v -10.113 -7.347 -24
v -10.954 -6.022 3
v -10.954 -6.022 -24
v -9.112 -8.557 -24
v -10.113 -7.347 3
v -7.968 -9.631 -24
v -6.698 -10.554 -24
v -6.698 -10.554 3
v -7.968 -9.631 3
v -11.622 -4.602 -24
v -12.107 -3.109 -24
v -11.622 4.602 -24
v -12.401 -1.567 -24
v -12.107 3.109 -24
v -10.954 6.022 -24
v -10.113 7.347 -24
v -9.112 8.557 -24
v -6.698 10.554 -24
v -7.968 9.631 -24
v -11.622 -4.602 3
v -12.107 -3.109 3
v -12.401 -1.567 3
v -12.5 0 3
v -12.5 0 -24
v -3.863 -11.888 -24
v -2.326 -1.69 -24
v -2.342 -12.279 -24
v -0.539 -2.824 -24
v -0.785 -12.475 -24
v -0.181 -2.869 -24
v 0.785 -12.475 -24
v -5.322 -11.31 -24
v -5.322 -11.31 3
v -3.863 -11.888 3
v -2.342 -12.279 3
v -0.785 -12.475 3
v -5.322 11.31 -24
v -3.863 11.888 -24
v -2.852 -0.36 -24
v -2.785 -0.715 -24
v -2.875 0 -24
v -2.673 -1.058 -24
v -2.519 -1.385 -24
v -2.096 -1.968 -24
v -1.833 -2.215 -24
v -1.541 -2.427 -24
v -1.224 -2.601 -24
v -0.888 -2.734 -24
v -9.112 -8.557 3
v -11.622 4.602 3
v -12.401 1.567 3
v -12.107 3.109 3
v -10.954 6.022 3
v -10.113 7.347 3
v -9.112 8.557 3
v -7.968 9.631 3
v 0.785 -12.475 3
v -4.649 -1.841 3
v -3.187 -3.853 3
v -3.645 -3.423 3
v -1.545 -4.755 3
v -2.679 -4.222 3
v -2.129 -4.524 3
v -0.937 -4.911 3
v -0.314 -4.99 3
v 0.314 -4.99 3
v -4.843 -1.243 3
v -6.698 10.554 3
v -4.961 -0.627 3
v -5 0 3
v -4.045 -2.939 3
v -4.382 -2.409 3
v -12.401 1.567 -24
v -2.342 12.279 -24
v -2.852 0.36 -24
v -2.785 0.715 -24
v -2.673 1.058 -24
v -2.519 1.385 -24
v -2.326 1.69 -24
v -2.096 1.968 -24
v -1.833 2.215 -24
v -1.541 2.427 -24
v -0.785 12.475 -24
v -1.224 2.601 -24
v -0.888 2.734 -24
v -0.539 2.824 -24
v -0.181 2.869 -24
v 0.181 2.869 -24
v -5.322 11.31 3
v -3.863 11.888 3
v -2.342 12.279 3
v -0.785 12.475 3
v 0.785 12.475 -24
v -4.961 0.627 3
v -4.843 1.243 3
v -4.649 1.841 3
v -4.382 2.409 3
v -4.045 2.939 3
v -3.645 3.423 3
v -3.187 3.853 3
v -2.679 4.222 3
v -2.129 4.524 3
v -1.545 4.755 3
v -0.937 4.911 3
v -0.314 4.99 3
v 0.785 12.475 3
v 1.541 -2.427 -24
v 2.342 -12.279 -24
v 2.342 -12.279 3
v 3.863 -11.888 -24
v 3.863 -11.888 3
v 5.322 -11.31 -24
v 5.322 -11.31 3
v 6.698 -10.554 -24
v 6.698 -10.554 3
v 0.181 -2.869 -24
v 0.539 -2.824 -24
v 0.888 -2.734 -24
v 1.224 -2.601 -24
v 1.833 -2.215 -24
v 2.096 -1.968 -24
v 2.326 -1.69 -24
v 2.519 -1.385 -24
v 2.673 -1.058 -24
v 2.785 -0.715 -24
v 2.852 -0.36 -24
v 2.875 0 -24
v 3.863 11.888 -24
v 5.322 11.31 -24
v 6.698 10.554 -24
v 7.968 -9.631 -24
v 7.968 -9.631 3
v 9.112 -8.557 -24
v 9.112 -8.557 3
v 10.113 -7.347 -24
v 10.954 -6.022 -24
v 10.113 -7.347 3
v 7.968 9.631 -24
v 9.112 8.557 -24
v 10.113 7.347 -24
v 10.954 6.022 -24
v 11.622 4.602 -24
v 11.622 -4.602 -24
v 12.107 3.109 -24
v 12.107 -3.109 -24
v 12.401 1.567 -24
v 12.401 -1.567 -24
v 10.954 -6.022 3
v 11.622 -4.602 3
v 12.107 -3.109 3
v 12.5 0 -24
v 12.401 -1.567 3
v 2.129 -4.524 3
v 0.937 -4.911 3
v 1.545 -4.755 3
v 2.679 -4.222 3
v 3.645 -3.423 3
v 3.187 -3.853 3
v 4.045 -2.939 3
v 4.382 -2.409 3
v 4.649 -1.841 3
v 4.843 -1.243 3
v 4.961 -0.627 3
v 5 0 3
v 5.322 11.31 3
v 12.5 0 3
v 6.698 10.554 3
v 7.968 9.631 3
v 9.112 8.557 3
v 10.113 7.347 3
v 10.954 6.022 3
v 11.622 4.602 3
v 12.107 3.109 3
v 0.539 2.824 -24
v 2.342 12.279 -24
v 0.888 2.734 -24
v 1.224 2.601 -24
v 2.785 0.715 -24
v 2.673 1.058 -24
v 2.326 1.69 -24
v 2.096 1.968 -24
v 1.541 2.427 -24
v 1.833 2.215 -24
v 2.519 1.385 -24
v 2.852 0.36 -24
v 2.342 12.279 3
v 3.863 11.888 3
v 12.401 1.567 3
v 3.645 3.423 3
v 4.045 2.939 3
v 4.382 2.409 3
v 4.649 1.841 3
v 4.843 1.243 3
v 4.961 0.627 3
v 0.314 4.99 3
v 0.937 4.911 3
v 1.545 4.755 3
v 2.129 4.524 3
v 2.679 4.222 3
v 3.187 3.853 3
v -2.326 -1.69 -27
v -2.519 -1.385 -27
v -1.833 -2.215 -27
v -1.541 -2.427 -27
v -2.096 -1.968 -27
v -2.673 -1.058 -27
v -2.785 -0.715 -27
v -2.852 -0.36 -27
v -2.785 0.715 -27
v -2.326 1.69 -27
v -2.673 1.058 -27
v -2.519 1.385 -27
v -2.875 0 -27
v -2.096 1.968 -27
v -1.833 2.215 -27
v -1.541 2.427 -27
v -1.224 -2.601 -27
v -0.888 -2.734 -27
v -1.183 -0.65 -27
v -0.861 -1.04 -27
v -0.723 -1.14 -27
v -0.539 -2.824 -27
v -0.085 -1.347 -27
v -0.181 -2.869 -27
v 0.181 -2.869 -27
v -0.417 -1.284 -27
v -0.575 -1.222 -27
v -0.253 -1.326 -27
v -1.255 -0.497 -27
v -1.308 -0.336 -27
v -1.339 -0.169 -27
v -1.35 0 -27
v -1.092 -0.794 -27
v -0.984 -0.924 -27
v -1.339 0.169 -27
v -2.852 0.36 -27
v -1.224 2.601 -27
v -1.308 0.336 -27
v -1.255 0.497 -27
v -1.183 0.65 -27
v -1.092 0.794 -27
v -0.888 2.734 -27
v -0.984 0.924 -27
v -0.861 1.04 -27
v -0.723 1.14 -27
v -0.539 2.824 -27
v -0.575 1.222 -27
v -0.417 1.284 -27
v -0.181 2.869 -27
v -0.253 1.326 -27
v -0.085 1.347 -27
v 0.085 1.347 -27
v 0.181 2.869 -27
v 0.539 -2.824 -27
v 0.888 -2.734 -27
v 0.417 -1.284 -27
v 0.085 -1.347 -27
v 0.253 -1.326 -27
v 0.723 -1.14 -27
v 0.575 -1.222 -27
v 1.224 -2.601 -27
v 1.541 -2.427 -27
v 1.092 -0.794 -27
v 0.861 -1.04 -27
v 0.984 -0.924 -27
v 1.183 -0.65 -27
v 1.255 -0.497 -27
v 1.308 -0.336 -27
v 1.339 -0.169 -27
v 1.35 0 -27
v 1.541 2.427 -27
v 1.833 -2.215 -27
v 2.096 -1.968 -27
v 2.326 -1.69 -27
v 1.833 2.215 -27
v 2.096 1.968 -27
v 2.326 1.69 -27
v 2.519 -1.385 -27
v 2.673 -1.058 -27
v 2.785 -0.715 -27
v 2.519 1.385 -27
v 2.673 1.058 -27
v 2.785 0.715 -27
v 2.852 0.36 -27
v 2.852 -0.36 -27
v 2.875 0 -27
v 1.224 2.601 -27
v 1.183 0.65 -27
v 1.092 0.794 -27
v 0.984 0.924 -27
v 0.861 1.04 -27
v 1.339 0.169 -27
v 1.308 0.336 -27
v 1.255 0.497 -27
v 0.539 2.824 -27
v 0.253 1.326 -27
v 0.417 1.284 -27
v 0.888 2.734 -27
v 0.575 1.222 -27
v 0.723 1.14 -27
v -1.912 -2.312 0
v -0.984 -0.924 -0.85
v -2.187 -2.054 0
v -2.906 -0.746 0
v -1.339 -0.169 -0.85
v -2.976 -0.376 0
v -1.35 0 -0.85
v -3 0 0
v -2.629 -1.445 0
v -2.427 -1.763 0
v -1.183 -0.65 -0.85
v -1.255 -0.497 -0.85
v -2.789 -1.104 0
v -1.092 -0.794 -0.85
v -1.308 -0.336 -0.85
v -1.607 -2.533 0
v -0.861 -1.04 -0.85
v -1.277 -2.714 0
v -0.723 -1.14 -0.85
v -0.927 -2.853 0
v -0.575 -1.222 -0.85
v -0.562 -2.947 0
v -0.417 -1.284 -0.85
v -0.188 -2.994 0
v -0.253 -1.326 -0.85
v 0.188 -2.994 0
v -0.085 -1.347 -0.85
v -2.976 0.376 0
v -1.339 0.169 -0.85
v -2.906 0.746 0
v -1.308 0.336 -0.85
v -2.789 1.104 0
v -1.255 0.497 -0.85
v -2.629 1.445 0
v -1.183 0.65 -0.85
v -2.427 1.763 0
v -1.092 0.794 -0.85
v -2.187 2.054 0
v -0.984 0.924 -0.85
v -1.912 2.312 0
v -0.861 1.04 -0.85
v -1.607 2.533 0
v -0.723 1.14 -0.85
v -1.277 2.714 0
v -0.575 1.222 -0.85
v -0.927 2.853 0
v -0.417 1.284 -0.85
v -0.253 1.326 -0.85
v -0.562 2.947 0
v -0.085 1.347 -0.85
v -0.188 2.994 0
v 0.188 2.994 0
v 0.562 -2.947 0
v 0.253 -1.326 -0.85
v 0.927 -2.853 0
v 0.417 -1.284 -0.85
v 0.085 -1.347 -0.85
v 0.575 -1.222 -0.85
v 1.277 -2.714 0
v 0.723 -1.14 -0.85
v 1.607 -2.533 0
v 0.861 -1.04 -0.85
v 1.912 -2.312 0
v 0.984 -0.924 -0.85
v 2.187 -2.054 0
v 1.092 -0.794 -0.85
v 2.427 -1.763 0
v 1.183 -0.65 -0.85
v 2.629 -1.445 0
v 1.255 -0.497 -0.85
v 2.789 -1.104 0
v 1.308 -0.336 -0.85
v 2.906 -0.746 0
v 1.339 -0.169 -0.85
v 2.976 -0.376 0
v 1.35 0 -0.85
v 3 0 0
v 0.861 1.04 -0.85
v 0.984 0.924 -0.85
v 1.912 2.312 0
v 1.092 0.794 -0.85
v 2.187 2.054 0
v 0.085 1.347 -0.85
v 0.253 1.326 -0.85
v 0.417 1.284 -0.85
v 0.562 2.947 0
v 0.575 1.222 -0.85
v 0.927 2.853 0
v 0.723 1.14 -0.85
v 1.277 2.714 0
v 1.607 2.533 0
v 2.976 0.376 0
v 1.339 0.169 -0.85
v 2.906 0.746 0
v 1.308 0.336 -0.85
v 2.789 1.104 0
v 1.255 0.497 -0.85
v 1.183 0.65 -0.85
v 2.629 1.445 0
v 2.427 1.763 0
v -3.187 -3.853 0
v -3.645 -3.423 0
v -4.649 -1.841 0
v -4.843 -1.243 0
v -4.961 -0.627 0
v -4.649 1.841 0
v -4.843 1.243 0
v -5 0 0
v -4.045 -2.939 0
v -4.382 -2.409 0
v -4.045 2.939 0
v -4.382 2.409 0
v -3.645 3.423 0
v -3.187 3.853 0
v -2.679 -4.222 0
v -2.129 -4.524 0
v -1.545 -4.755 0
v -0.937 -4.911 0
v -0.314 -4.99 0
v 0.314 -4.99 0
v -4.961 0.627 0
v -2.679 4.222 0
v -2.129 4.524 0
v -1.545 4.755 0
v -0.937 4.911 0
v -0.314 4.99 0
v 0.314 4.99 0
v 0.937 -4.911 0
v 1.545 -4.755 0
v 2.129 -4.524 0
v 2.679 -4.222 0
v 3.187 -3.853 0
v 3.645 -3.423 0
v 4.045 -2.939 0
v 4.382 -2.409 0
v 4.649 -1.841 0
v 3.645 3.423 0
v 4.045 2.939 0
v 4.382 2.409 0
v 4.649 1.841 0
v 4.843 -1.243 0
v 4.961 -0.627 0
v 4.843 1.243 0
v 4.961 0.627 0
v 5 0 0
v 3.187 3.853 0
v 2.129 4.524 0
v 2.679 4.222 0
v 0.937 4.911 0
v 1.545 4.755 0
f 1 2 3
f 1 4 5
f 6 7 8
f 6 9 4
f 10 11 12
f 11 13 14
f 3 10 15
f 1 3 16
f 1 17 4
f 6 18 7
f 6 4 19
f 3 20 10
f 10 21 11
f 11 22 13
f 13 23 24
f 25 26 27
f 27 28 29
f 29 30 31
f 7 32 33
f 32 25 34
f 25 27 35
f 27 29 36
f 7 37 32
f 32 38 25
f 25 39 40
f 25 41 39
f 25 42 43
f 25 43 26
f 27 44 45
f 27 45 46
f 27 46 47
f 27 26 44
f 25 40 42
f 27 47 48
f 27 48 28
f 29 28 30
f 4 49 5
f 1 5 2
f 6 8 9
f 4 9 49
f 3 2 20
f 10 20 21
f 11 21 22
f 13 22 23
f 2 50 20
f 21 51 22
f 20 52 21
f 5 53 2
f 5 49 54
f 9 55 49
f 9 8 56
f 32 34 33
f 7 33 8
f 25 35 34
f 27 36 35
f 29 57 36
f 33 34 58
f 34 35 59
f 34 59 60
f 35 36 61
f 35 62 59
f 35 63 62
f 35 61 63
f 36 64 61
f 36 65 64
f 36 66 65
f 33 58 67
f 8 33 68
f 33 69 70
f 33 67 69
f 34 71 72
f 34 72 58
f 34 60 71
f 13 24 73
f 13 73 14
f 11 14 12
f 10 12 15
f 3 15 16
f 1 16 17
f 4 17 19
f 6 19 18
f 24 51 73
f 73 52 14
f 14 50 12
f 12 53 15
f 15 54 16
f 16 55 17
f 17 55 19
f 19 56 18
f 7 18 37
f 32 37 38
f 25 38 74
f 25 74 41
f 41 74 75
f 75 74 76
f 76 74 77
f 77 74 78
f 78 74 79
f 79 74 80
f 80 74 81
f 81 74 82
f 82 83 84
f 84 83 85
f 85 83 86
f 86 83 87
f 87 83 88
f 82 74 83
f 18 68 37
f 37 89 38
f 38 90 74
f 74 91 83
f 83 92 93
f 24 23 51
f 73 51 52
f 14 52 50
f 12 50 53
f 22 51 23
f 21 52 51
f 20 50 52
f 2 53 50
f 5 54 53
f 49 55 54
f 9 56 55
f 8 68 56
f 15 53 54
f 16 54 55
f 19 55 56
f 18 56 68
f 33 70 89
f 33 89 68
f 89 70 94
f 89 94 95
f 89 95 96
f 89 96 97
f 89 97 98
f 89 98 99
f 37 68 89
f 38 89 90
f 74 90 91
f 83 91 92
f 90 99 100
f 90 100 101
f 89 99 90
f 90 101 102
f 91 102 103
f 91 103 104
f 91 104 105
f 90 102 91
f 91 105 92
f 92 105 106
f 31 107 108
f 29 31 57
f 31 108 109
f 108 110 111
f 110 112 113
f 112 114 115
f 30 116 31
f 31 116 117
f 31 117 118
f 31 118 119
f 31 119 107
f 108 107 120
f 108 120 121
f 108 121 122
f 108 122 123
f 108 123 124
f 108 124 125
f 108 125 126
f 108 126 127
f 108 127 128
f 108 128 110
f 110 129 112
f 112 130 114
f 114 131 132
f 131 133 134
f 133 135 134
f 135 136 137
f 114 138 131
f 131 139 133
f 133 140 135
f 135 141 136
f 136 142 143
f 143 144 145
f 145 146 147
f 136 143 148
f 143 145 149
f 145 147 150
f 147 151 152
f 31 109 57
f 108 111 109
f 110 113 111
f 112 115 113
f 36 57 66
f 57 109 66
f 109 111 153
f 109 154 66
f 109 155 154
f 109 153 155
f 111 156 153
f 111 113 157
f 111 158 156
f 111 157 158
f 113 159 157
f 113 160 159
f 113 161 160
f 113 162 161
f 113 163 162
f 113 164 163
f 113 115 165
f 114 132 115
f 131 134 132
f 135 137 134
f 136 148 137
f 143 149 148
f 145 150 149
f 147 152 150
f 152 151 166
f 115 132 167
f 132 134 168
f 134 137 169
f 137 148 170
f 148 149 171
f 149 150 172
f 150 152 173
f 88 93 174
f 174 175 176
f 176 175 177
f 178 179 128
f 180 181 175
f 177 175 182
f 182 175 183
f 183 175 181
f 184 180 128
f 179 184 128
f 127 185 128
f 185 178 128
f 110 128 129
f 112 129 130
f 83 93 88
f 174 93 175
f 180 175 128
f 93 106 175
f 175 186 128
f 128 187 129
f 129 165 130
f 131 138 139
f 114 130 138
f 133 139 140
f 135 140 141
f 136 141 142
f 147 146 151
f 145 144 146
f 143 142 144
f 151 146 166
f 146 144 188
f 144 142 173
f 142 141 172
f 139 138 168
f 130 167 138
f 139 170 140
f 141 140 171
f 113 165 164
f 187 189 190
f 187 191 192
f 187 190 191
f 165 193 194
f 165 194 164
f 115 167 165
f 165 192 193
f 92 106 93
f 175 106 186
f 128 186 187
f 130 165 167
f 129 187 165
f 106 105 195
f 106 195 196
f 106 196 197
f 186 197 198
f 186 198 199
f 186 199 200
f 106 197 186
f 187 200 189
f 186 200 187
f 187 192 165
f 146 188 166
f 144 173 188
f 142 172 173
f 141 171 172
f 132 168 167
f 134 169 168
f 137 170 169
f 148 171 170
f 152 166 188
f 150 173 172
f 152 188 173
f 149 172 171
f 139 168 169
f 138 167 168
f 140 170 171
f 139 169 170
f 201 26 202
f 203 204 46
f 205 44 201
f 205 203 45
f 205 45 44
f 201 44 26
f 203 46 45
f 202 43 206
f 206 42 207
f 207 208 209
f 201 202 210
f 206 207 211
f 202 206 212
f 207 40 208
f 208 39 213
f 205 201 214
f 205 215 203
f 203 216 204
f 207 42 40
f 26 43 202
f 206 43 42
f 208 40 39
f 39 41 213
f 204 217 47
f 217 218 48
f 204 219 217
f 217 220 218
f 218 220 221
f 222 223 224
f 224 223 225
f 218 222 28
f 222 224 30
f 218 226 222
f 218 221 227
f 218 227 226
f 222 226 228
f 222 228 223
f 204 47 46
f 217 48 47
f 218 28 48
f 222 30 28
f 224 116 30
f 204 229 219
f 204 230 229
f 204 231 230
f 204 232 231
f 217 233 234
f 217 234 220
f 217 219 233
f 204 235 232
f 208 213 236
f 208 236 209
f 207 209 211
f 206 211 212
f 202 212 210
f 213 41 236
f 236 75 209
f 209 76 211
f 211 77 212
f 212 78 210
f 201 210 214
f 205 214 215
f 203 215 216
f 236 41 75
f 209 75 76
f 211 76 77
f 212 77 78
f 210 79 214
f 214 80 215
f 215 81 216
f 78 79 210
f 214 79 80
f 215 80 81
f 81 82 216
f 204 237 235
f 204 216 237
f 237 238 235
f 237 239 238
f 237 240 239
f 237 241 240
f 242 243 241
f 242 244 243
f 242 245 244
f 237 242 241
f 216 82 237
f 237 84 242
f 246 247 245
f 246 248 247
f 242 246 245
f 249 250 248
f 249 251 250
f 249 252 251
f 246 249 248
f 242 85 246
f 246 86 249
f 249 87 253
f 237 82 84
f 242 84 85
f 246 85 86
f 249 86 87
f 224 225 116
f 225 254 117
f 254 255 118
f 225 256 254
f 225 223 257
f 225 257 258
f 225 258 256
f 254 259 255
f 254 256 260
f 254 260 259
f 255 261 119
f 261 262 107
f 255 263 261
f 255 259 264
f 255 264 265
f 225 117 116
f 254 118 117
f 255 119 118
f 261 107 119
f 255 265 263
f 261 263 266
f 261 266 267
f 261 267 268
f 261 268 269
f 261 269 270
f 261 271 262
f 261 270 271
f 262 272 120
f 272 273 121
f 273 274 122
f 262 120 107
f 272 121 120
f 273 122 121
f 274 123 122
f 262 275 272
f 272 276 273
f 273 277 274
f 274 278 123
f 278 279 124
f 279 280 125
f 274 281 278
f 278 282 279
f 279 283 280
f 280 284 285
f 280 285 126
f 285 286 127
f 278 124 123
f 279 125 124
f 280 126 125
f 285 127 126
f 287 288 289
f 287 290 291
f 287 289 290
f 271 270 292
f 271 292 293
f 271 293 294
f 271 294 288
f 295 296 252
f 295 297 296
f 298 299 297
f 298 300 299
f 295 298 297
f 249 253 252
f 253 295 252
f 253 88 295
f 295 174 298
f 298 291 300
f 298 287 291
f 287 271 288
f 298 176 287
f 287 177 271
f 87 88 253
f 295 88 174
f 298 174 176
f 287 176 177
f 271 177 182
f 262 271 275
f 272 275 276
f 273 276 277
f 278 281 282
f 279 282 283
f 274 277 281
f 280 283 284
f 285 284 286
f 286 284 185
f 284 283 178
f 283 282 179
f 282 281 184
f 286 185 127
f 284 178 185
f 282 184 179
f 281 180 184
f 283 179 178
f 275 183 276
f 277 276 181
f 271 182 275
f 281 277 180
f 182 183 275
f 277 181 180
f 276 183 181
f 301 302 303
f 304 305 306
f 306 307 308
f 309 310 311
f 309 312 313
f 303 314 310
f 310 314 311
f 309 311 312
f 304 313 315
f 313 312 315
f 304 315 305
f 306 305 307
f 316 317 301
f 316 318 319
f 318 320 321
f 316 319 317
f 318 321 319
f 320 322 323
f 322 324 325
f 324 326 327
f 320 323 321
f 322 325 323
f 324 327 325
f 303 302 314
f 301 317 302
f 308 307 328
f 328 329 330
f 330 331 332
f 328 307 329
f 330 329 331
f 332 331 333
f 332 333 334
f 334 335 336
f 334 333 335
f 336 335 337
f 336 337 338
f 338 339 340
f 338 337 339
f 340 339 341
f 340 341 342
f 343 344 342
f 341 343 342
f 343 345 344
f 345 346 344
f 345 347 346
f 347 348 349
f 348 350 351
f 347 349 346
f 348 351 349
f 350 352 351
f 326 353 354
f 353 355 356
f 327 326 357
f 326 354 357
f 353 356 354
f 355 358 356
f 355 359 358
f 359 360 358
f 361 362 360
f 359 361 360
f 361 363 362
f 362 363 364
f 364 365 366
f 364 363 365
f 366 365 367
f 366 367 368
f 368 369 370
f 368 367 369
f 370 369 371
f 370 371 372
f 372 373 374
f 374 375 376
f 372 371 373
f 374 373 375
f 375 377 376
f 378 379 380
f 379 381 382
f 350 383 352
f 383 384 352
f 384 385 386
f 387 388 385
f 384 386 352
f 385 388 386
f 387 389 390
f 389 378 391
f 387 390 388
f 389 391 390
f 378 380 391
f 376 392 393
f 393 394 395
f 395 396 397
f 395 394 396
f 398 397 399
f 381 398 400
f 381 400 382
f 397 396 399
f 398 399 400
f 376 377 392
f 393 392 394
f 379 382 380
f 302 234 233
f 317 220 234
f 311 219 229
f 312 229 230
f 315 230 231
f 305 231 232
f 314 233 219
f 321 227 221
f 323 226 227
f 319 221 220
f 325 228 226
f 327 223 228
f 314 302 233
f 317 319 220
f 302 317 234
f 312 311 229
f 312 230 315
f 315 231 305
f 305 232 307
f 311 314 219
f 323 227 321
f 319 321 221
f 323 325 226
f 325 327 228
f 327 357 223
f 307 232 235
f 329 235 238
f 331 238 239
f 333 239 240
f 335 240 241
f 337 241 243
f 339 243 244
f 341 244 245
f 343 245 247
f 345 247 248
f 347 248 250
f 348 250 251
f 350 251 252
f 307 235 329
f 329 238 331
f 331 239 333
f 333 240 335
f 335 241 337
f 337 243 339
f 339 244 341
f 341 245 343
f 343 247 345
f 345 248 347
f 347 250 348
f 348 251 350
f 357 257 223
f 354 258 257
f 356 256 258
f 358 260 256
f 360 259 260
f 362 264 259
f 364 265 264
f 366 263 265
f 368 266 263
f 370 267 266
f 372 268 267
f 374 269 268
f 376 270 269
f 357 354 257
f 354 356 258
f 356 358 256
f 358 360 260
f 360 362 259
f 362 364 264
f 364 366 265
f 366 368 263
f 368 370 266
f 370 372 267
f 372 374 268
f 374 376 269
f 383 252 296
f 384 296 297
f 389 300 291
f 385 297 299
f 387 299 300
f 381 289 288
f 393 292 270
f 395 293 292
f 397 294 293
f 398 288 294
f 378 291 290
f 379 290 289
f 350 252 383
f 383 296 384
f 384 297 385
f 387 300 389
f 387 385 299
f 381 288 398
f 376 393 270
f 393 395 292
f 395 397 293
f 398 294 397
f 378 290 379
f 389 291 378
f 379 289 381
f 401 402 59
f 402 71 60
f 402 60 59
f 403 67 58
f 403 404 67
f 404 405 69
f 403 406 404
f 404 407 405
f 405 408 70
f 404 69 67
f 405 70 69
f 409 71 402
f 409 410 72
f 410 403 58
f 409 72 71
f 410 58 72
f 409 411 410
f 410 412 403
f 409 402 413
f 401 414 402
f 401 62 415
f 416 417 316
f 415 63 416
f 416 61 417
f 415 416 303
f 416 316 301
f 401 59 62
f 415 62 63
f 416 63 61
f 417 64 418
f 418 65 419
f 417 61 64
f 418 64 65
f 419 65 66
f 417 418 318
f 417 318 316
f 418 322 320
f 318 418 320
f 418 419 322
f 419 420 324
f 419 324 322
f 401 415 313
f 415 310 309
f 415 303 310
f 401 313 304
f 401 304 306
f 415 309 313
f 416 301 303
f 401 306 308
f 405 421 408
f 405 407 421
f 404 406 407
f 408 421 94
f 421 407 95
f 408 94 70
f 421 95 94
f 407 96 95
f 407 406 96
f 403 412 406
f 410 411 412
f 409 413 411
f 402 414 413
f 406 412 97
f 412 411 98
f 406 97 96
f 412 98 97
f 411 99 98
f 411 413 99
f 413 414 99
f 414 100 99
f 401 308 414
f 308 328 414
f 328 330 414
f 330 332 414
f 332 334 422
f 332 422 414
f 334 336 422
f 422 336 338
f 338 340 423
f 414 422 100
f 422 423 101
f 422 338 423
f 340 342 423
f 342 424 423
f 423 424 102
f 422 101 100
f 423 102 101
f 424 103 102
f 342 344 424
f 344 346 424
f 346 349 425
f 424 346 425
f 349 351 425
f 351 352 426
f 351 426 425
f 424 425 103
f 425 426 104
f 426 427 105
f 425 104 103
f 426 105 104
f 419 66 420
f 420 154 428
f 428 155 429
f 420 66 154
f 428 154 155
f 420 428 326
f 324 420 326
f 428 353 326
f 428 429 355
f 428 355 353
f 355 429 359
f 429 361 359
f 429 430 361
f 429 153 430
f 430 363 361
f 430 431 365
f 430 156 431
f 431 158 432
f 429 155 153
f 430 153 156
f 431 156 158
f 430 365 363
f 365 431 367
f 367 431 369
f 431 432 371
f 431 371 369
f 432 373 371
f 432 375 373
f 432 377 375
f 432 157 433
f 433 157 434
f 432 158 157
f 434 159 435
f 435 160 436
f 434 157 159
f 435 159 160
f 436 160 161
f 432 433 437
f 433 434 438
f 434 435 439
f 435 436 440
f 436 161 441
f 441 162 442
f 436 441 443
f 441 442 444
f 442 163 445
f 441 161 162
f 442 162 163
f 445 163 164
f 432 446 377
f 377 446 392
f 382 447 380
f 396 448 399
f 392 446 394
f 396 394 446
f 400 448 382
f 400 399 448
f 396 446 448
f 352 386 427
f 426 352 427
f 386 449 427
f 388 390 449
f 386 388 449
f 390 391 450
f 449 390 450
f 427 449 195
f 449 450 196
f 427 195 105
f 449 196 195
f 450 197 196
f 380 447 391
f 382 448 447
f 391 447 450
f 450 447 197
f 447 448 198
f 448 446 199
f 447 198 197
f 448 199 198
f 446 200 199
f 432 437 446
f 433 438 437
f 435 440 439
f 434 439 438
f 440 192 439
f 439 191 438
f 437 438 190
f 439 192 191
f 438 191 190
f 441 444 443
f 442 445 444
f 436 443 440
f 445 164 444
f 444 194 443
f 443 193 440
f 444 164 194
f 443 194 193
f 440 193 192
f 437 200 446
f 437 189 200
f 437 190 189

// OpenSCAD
$fn = 50;

difference() {
	union() {
		translate(v = [0, 0, -24.0]) {
			cylinder(h = 27, r = 12.5);
		}
		#translate(v = [0, 0, -27.0]) {
			cylinder(h = 27, r = 2.875);
		}
	}
	union() {
		translate(v = [0, 0, 0]) {
			rotate(a = [0, 0, 0]) {
				difference() {
					union() {
						translate(v = [0, 0, -27.0]) {
							cylinder(h = 27, r = 1.0);
						}
						translate(v = [0, 0, -0.85]) {
							cylinder(h = 0.85, r1 = 1.35, r2 = 3.0);
						}
						translate(v = [0, 0, -27.0]) {
							cylinder(h = 27, r = 1.35);
						}
						translate(v = [0, 0, -27.0]) {
							cylinder(h = 27, r = 1.0);
						}
					}
					union();
				}
			}
		}
		#cylinder(h = 3, r = 5.0);
	}
}
